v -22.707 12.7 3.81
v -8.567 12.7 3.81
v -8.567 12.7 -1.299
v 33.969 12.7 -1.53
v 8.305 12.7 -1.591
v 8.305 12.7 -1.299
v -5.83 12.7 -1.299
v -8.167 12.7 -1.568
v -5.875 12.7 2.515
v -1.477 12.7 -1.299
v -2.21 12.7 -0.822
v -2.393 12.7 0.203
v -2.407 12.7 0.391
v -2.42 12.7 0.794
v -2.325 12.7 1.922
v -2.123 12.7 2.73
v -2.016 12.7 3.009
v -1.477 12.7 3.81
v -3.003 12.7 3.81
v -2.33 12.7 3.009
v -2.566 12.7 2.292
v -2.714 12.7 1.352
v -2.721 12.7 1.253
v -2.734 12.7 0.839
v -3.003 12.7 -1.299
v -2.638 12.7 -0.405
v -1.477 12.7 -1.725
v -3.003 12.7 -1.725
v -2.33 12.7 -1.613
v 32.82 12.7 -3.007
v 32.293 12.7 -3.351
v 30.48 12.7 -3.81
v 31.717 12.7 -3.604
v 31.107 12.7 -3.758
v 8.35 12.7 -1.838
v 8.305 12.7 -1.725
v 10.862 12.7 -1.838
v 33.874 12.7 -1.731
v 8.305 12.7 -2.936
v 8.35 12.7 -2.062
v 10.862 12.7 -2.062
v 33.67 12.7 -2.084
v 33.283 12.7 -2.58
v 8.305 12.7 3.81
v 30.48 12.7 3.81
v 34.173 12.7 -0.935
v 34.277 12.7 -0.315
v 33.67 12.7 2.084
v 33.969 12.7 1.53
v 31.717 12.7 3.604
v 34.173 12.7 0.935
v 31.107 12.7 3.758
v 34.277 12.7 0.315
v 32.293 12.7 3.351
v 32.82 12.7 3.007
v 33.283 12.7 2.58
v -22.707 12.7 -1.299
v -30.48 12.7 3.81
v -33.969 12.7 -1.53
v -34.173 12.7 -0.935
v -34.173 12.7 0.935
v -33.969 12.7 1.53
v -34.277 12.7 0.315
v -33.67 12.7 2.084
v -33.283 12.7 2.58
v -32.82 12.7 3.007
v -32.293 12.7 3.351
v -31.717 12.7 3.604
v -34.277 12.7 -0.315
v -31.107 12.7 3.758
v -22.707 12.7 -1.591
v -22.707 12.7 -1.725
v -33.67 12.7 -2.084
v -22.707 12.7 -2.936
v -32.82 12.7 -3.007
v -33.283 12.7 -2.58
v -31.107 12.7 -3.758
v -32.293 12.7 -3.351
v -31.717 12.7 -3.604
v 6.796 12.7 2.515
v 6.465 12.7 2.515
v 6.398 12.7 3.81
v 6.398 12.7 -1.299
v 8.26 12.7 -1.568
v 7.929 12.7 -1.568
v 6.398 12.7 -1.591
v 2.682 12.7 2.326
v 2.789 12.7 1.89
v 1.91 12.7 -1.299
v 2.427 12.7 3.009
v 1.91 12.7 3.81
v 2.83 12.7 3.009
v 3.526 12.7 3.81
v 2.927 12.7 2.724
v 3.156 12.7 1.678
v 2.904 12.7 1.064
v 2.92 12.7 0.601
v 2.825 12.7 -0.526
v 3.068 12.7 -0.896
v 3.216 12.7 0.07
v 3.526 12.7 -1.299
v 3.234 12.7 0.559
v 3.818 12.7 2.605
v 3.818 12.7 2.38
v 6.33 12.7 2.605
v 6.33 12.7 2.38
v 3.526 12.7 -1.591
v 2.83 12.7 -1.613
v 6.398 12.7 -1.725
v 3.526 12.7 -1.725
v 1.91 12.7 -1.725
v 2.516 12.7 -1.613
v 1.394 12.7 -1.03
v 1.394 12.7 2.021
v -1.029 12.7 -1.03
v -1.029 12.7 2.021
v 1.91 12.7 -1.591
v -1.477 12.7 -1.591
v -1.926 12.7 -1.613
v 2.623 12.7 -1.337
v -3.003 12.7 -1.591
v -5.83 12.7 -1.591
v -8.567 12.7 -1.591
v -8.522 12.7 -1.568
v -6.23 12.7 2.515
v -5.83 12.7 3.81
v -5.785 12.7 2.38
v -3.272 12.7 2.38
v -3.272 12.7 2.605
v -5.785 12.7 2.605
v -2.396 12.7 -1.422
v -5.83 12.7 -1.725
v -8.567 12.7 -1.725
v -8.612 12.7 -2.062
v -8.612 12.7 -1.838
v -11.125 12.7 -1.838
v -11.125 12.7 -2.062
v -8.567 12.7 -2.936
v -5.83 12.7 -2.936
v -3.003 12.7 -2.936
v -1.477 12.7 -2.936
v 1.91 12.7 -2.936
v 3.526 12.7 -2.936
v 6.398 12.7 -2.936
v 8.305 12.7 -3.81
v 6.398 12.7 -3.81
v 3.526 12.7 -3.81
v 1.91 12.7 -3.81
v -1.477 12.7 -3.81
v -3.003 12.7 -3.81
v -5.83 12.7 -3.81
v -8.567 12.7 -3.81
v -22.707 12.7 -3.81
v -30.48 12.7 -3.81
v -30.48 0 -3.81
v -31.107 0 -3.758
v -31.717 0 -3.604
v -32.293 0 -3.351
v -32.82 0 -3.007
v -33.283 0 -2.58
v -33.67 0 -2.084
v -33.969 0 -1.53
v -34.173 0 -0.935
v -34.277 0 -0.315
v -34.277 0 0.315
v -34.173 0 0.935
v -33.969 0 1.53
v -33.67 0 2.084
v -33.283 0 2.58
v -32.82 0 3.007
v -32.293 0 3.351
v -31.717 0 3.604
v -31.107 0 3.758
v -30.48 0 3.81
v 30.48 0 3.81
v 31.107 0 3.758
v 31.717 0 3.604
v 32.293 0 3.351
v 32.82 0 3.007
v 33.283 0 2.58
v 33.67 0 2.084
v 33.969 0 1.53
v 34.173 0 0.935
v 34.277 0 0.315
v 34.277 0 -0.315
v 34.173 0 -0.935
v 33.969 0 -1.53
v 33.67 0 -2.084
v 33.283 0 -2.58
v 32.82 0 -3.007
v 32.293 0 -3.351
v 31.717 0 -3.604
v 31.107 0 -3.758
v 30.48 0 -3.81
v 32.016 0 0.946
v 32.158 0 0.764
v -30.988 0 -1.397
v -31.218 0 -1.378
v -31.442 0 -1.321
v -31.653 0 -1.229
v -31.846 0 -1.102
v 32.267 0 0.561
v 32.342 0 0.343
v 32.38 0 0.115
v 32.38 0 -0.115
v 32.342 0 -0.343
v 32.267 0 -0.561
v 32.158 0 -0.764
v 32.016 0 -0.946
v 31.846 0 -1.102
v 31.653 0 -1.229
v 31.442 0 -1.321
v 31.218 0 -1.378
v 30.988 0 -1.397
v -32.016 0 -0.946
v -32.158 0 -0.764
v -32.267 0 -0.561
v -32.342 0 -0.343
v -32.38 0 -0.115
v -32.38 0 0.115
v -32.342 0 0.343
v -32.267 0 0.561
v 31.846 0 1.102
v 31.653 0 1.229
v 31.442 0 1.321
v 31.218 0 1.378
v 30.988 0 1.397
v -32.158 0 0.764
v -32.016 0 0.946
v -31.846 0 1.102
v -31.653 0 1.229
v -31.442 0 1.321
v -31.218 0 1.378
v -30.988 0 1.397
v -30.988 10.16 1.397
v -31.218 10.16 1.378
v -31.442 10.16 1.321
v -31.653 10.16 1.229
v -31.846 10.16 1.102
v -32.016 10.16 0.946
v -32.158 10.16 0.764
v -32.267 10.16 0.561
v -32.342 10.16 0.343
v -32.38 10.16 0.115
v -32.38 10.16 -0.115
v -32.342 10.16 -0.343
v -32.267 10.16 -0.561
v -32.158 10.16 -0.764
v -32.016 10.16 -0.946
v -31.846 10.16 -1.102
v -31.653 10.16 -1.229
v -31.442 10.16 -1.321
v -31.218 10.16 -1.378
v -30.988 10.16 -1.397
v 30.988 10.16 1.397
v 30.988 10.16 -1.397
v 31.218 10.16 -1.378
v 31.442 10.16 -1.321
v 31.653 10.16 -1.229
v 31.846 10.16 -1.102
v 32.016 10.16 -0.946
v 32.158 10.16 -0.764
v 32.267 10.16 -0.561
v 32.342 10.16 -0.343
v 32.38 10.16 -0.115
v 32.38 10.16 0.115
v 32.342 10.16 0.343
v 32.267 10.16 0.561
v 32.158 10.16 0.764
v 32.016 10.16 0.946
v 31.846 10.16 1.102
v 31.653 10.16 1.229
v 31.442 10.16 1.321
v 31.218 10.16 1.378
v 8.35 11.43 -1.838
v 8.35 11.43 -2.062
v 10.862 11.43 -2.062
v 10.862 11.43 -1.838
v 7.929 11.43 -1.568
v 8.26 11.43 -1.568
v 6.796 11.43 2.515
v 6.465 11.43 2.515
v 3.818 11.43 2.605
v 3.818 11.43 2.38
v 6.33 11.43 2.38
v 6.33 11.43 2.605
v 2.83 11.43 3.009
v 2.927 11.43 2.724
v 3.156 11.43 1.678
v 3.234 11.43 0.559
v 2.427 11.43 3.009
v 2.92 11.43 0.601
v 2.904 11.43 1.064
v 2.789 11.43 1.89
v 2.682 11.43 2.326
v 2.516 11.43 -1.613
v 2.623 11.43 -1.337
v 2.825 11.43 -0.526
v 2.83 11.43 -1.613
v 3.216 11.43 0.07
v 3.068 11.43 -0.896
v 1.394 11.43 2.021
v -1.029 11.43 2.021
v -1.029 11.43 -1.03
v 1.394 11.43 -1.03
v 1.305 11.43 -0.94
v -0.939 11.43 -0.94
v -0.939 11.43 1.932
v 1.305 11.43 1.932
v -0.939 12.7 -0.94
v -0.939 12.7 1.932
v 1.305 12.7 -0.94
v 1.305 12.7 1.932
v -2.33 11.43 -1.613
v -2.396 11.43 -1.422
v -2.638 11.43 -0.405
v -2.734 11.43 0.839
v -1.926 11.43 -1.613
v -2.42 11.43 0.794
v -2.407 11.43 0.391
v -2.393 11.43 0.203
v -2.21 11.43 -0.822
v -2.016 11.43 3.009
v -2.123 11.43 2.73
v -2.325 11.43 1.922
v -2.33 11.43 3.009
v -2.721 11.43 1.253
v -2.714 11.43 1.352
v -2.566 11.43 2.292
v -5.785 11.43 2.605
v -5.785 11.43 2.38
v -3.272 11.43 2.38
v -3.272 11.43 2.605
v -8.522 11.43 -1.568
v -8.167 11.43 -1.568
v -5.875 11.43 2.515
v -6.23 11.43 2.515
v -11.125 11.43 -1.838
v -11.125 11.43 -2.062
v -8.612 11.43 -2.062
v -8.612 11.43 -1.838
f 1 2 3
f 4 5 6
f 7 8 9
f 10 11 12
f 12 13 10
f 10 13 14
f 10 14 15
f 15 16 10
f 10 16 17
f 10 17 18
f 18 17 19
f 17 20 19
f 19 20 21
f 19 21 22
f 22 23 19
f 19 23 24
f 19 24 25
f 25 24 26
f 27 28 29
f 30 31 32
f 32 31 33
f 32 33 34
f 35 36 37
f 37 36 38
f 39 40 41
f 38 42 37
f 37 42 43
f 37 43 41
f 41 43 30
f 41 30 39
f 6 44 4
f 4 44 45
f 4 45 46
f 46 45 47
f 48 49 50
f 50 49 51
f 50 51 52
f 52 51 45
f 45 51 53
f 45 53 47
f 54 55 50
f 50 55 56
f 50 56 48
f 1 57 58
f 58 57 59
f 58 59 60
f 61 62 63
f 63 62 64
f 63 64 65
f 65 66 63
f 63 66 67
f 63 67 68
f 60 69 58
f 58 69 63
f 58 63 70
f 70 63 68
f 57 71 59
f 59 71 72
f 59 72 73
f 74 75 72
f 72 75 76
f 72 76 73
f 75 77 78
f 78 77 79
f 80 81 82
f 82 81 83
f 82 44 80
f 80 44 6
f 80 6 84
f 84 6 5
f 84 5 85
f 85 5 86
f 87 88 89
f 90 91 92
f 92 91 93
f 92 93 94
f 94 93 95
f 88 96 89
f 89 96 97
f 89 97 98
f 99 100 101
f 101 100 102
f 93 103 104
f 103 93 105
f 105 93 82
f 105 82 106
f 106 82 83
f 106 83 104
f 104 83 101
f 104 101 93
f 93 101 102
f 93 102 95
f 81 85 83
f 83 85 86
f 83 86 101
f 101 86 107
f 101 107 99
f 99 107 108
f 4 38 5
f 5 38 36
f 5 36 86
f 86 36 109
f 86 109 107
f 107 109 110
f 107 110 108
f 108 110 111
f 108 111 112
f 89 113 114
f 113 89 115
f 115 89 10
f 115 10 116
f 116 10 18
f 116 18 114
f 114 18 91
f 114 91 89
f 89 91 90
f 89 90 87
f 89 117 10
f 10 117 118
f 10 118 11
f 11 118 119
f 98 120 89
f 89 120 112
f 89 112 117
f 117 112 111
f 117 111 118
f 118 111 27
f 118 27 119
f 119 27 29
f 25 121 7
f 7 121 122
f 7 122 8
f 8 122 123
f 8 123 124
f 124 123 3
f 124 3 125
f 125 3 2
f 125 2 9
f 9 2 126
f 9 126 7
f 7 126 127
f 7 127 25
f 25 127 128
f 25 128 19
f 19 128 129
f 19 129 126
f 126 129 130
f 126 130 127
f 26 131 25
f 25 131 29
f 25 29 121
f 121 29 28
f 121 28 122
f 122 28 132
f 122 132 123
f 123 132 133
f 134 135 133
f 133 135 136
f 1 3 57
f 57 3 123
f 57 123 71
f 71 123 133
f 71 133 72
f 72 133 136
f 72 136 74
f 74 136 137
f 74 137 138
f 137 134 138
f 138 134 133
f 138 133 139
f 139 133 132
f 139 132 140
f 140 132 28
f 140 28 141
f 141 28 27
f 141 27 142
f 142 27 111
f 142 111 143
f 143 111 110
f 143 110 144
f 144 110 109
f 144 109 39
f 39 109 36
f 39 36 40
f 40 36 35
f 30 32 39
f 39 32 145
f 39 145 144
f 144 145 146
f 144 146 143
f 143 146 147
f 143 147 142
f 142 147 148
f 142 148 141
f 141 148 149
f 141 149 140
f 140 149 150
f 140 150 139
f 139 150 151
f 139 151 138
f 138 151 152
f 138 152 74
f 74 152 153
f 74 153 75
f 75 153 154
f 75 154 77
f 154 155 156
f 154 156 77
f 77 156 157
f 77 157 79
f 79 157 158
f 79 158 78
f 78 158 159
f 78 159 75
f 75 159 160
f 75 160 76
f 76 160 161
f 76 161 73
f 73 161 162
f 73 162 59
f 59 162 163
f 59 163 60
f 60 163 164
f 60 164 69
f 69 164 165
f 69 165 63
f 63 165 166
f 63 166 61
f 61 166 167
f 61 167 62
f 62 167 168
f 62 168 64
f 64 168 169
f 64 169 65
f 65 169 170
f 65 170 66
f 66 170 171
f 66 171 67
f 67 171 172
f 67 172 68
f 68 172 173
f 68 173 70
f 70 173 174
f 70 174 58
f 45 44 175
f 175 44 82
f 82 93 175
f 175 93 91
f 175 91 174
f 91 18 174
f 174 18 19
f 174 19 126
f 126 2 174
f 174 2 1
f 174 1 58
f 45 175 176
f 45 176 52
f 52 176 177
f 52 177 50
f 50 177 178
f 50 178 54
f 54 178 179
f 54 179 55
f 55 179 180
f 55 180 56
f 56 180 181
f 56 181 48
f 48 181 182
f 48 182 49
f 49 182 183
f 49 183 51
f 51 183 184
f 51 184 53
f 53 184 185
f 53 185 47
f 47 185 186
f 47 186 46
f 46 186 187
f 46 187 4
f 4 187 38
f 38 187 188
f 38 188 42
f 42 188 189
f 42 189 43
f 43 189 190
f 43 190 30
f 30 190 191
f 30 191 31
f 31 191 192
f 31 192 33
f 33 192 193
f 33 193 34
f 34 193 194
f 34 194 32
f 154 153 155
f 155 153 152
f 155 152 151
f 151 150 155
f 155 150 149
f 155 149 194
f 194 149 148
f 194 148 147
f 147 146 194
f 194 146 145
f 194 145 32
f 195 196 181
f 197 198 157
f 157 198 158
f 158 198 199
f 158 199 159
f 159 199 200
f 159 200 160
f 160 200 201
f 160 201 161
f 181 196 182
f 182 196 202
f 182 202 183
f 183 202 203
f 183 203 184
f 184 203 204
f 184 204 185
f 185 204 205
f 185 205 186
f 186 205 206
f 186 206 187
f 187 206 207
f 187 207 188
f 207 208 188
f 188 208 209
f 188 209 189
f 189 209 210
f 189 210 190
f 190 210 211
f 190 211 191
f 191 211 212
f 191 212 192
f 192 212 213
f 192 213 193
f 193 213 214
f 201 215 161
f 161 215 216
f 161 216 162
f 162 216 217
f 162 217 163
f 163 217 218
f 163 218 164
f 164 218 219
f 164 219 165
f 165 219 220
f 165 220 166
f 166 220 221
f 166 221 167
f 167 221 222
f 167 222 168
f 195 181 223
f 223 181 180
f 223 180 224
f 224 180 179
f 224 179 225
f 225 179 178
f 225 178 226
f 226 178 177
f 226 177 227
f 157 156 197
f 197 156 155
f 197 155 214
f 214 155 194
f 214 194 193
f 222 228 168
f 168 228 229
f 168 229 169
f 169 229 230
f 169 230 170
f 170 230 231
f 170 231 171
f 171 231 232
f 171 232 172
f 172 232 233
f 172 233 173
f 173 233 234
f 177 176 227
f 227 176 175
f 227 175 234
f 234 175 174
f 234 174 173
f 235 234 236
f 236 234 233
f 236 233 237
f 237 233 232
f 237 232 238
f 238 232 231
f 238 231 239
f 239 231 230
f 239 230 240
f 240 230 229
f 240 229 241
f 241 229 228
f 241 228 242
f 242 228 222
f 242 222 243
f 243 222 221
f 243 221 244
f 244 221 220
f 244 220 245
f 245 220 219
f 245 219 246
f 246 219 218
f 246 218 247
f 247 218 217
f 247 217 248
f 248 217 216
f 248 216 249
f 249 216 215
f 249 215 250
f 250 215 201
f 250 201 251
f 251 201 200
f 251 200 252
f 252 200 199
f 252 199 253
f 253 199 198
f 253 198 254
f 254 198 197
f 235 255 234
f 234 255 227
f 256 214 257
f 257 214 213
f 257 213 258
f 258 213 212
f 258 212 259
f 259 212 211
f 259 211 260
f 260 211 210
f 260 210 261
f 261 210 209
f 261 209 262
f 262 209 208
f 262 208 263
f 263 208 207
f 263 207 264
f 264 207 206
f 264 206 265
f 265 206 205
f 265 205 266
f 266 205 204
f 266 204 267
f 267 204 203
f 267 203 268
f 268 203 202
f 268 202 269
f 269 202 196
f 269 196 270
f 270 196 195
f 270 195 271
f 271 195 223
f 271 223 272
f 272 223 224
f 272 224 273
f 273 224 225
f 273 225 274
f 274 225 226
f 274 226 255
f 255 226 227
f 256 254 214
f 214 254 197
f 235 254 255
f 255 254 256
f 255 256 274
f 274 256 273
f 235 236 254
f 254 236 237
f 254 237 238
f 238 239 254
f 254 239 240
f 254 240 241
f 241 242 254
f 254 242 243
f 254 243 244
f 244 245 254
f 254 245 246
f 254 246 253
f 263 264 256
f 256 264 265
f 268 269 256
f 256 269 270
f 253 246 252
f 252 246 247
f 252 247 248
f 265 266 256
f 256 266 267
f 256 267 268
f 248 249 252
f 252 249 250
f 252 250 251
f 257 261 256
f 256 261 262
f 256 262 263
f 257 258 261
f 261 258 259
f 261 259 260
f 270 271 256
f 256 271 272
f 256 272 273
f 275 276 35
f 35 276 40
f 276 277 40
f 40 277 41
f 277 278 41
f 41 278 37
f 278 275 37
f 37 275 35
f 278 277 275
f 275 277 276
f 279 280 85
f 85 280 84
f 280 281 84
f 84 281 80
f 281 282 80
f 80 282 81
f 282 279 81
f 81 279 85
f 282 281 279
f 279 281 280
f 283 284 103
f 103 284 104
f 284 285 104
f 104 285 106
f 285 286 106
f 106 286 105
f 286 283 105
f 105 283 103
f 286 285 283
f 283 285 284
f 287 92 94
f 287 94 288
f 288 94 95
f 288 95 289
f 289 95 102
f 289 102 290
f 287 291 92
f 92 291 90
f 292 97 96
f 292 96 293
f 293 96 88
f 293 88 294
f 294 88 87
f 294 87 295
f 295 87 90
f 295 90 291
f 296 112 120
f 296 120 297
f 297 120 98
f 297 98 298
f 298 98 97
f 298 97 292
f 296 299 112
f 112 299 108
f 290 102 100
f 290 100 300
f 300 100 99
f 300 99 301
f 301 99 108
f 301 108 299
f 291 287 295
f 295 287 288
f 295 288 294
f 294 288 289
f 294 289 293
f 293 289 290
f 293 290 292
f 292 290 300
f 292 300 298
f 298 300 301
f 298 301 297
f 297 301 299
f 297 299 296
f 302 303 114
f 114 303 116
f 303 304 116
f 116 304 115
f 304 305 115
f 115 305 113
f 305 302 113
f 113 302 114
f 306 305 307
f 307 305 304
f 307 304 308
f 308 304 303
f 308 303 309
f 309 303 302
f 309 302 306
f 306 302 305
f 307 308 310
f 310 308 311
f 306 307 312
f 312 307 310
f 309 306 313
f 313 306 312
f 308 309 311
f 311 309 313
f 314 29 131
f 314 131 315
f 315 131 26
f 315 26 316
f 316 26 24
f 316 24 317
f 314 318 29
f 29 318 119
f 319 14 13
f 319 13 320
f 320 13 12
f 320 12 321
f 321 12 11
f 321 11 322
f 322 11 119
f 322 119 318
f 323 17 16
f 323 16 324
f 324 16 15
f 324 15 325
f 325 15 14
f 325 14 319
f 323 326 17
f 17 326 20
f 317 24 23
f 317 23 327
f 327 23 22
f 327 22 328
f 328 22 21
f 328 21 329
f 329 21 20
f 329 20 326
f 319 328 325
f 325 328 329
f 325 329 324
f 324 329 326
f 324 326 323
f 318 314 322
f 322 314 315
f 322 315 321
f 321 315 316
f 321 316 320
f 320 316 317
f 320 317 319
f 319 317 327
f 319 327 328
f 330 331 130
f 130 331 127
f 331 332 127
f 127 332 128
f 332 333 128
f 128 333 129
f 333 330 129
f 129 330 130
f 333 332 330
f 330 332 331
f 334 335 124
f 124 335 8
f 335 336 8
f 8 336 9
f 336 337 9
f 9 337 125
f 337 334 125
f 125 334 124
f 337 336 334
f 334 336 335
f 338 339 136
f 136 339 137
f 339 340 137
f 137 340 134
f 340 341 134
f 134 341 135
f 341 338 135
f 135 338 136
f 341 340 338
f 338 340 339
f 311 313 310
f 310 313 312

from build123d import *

# Parameters (mm, degrees)
BOSS_EXTRUDE1_DEPTH = 12.7
CUT_EXTRUDE1_DEPTH  = 10.16
SKETCH3_W           = 2.512820512
SKETCH3_H           = 0.224358975
SKETCH3_W_2         = 2.512820513
SKETCH3_H_2         = 0.224358974
SKETCH3_W_3         = 2.423076923
SKETCH3_H_3         = 3.051282052
SKETCH3_W_4         = 2.243589743
SKETCH3_H_4         = 2.871794872
CUT_EXTRUDE2_DEPTH  = 1.27


with BuildPart() as part:
    # Sketch1 → Boss-Extrude1 (new body)
    with BuildSketch(Plane(origin=(0, 0, 0), x_dir=(1, 0, 0), z_dir=(0, 1, 0))):
        with BuildLine():
            Line((-30.48, 3.81), (30.48, 3.81))
            ThreePointArc((30.48, 3.81), (34.29, 0), (30.48, -3.81))
            Line((30.48, -3.81), (-30.48, -3.81))
            ThreePointArc((-30.48, -3.81), (-34.29, 0), (-30.48, 3.81))
        make_face()
    extrude(amount=BOSS_EXTRUDE1_DEPTH)

    # Sketch2 → Cut-Extrude1 (cut)
    with BuildSketch(Plane.XZ):
        with BuildLine():
            Line((-30.988, 1.397), (30.988, 1.397))
            ThreePointArc((30.988, 1.397), (32.385, 0), (30.988, -1.397))
            Line((30.988, -1.397), (-30.988, -1.397))
            ThreePointArc((-30.988, -1.397), (-32.385, 0), (-30.988, 1.397))
        make_face()
    extrude(amount=-CUT_EXTRUDE1_DEPTH, mode=Mode.SUBTRACT)

    # Sketch3 → Cut-Extrude2 (cut)
    with BuildSketch(Plane(origin=(0, 12.7, 0), x_dir=(1, 0, 0), z_dir=(0, 1, 0))):
        with Locations((-9.868354695, 1.949821987)):
            Rectangle(SKETCH3_W, SKETCH3_H)
        Polygon((-8.167433221, 1.56841173), (-5.874764951, -2.514921603), (-6.22953258, -2.514921603), (-8.522200849, 1.56841173), align=None)
        with Locations((-4.528611106, -2.492485706)):
            Rectangle(SKETCH3_W_2, SKETCH3_H_2)
        with BuildLine():
            Line((-2.329893156, 1.613283525), (-1.926047003, 1.613283525))
            add(Edge.make_bspline(
                [(-1.926047003, 1.613283525), (-1.944595679, 1.573225506), (-1.982258533, 1.491888205), (-2.033440085, 1.365776004), (-2.08306669, 1.235347225), (-2.128016891, 1.099286858), (-2.172746394, 0.958938117), (-2.212892282, 0.813055443), (-2.251030023, 0.662573196), (-2.297658473, 0.455059227), (-2.346937221, 0.189956446), (-2.388844661, -0.13371939), (-2.414835709, -0.462309009), (-2.418031025, -0.683310365), (-2.419636746, -0.794368719)],
                knots=[0, 0, 0, 0, 0.000132414, 0.000268864, 0.000408202, 0.000550987, 0.000698673, 0.00085007, 0.001004813, 0.001164361, 0.001488072, 0.00181332, 0.002143114, 0.002476253, 0.002476253, 0.002476253, 0.002476253], degree=3))
            add(Edge.make_bspline(
                [(-2.419636746, -0.794368719), (-2.418174092, -0.896994356), (-2.415269461, -1.100794888), (-2.39555112, -1.403593934), (-2.361748279, -1.700924317), (-2.315161311, -1.990560634), (-2.257008203, -2.26887028), (-2.187308319, -2.531522985), (-2.109429056, -2.777644099), (-2.046451105, -2.932917324), (-2.015790592, -3.008511347)],
                knots=[0, 0, 0, 0, 0.000307872, 0.000611392, 0.00090987, 0.001205296, 0.001491175, 0.001762426, 0.002020291, 0.002264936, 0.002264936, 0.002264936, 0.002264936], degree=3))
            Line((-2.015790592, -3.008511347), (-2.329893156, -3.008511347))
            add(Edge.make_bspline(
                [(-2.329893156, -3.008511347), (-2.345059433, -2.972840264), (-2.375799242, -2.900540233), (-2.418668441, -2.788874123), (-2.458438817, -2.672275035), (-2.496197017, -2.551137941), (-2.531986826, -2.425372334), (-2.565708096, -2.295224557), (-2.596352522, -2.160231418), (-2.635037976, -1.973771045), (-2.674487586, -1.734133797), (-2.708879678, -1.441012576), (-2.729583163, -1.141957485), (-2.732346302, -0.940701584), (-2.73373931, -0.839240513)],
                knots=[0, 0, 0, 0, 0.000116278, 0.000235679, 0.000358736, 0.000485801, 0.000616297, 0.000750978, 0.000889083, 0.001031536, 0.001322232, 0.001617307, 0.001916676, 0.002221044, 0.002221044, 0.002221044, 0.002221044], degree=3))
            add(Edge.make_bspline(
                [(-2.73373931, -0.839240513), (-2.732594304, -0.729601973), (-2.730314646, -0.511316432), (-2.709927037, -0.186438945), (-2.67775989, 0.134220277), (-2.63330287, 0.449137671), (-2.576047932, 0.75631684), (-2.506720854, 1.052993625), (-2.425998034, 1.33841465), (-2.36165775, 1.522433838), (-2.329893156, 1.613283525)],
                knots=[0, 0, 0, 0, 0.000328887, 0.000654799, 0.000976133, 0.001295507, 0.001608623, 0.001913212, 0.002209258, 0.002497933, 0.002497933, 0.002497933, 0.002497933], degree=3))
        make_face()
        with Locations((0.182927357, -0.495690834)):
            Rectangle(SKETCH3_W_3, SKETCH3_H_3)
        with Locations((0.182927357, -0.495690834)):
            Rectangle(SKETCH3_W_4, SKETCH3_H_4, mode=Mode.SUBTRACT)
        with BuildLine():
            Line((2.830363254, -3.008511347), (2.4265171, -3.008511347))
            add(Edge.make_bspline(
                [(2.4265171, -3.008511347), (2.445363004, -2.968481706), (2.483586773, -2.887292514), (2.534455272, -2.76084909), (2.584889971, -2.630579527), (2.630978179, -2.494786752), (2.674142382, -2.354187151), (2.715314887, -2.208721317), (2.751721509, -2.058090142), (2.799164465, -1.850839452), (2.848318586, -1.585696239), (2.889036553, -1.261679417), (2.915372484, -0.932926529), (2.918523423, -0.711920038), (2.920106844, -0.600859103)],
                knots=[0, 0, 0, 0, 0.000132705, 0.000269155, 0.000408742, 0.000551752, 0.000699229, 0.000849951, 0.001005205, 0.001164069, 0.001487781, 0.001813634, 0.002143428, 0.002476567, 0.002476567, 0.002476567, 0.002476567], degree=3))
            add(Edge.make_bspline(
                [(2.920106844, -0.600859103), (2.918636197, -0.498001444), (2.91572232, -0.294203706), (2.896183473, 0.008881128), (2.861380724, 0.305887024), (2.815003035, 0.595585979), (2.756388988, 0.873712258), (2.688249953, 1.13672272), (2.609689621, 1.382585825), (2.546879933, 1.537677511), (2.51626069, 1.613283525)],
                knots=[0, 0, 0, 0, 0.000308573, 0.000611394, 0.000910648, 0.001205381, 0.001491261, 0.001763011, 0.002020209, 0.002264854, 0.002264854, 0.002264854, 0.002264854], degree=3))
            Line((2.51626069, 1.613283525), (2.830363254, 1.613283525))
            add(Edge.make_bspline(
                [(2.830363254, 1.613283525), (2.845822151, 1.577637011), (2.877117965, 1.505472313), (2.919829121, 1.393322705), (2.960040307, 1.276737462), (2.999155723, 1.155636367), (3.034577994, 1.029732856), (3.067427606, 0.898965664), (3.098479857, 0.763700098), (3.135574411, 0.576263016), (3.175988281, 0.336649903), (3.209135848, 0.043155631), (3.230099589, -0.255833632), (3.232832988, -0.457328041), (3.234209408, -0.558791796)],
                knots=[0, 0, 0, 0, 0.000116551, 0.000235952, 0.0003599, 0.000486508, 0.000617678, 0.000752185, 0.000890974, 0.001033975, 0.001325362, 0.00161966, 0.001919729, 0.002224096, 0.002224096, 0.002224096, 0.002224096], degree=3))
            add(Edge.make_bspline(
                [(3.234209408, -0.558791796), (3.233086955, -0.66819864), (3.230857007, -0.885554545), (3.210174372, -1.209702469), (3.178588831, -1.529761994), (3.132817504, -1.84453593), (3.075650132, -2.151444658), (3.007392512, -2.448324515), (2.926416312, -2.733629989), (2.86211072, -2.917657534), (2.830363254, -3.008511347)],
                knots=[0, 0, 0, 0, 0.000328186, 0.000651998, 0.00097403, 0.001292809, 0.001605925, 0.001910355, 0.002206401, 0.002495076, 0.002495076, 0.002495076, 0.002495076], degree=3))
        make_face()
        with Locations((5.073952998, -2.492485706)):
            Rectangle(SKETCH3_W_2, SKETCH3_H_2)
        Polygon((8.259850433, 1.56841173), (6.795908126, -2.514921603), (6.464978638, -2.514921603), (7.928920946, 1.56841173), align=None)
        with Locations((9.60600428, 1.949821987)):
            Rectangle(SKETCH3_W_2, SKETCH3_H)
    extrude(amount=-CUT_EXTRUDE2_DEPTH, mode=Mode.SUBTRACT)


solid = part.part
